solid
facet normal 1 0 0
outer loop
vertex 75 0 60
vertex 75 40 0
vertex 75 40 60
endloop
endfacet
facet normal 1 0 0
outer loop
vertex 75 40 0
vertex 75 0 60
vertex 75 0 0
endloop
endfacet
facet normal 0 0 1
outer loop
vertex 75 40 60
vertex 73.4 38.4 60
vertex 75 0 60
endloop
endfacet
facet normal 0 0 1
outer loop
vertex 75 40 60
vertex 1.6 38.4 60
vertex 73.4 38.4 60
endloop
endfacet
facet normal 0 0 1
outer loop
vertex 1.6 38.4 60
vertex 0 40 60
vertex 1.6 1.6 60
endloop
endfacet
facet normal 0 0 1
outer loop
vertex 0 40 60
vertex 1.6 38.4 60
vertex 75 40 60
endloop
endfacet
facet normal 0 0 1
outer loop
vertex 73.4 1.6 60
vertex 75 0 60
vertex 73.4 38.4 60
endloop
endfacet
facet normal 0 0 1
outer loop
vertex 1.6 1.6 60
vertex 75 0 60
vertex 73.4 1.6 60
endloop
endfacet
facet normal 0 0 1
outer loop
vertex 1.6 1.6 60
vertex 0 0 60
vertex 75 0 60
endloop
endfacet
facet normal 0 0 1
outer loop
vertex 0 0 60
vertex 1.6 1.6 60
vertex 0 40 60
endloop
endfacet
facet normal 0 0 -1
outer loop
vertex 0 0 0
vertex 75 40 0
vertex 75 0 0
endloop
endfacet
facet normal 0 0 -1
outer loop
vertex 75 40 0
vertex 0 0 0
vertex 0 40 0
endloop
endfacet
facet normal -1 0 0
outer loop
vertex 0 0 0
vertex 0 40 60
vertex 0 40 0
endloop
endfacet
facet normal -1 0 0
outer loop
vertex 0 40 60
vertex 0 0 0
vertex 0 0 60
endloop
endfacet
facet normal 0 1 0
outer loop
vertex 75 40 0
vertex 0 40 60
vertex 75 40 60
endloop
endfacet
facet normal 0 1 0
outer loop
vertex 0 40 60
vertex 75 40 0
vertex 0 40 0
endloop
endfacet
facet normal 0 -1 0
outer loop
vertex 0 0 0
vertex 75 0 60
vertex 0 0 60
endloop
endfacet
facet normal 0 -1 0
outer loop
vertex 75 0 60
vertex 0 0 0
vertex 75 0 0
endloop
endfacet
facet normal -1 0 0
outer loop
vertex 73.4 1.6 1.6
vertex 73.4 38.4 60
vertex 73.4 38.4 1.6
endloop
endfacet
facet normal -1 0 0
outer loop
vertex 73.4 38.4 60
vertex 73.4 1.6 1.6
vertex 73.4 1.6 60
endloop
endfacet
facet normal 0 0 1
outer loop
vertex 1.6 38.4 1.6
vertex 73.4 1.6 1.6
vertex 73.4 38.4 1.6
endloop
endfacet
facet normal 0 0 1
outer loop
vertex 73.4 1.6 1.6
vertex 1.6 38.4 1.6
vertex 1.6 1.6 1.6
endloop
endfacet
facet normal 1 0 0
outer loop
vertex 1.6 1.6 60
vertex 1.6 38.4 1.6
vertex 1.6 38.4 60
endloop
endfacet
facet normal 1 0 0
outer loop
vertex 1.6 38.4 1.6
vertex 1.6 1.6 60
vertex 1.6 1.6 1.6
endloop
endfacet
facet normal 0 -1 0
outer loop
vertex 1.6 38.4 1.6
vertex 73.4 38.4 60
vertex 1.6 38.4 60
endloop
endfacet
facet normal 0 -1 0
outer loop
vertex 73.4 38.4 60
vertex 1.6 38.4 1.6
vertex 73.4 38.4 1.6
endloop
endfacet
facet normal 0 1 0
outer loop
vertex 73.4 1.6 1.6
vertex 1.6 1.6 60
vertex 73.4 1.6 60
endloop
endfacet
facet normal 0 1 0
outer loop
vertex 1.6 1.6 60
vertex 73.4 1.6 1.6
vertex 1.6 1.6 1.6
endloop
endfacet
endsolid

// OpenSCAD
include <boardgame_insert_toolkit_lib.2.scad>;

// determines whether lids are output.
g_b_print_lid = true;

// determines whether boxes are output.
g_b_print_box = true;

// Focus on one box
g_isolated_print_box = "";

// Used to visualize how all of the boxes fit together.
g_b_visualization = false;

// this is the outer wall thickness.
// Default = 1.5mm
g_wall_thickness = 1.6;

// The tolerance value is extra space put between planes of the lid and box
// that fit together. Increase the tolerance to loosen the fit and decrease it
// to tighten it.
//
// Note that the tolerance is applied exclusively to the lid.
// So if the lid is too tight or too loose, change this value ( up for looser
// fit, down for tighter fit ) and you only need to reprint the lid.
//
// The exception is the stackable box, where the bottom of the box is the lid
// of the box below, in which case the tolerance also affects that box bottom.
//
g_tolerance = 0.15;

// This adjusts the position of the lid detents downward.
// The larger the value, the bigger the gap between the lid and the box.
g_tolerance_detents_pos = 0.1;

data = [
  [
    "simple box",
    [
      [BOX_SIZE_XYZ, [75, 40, 60]],
      [BOX_NO_LID_B, t],
      [
        BOX_COMPONENT,
        [
          [
            CMP_COMPARTMENT_SIZE_XYZ,
            [71.8, 36.8, 58.4]
          ]
        ]
      ]
    ]
  ]
];

MakeAll();
